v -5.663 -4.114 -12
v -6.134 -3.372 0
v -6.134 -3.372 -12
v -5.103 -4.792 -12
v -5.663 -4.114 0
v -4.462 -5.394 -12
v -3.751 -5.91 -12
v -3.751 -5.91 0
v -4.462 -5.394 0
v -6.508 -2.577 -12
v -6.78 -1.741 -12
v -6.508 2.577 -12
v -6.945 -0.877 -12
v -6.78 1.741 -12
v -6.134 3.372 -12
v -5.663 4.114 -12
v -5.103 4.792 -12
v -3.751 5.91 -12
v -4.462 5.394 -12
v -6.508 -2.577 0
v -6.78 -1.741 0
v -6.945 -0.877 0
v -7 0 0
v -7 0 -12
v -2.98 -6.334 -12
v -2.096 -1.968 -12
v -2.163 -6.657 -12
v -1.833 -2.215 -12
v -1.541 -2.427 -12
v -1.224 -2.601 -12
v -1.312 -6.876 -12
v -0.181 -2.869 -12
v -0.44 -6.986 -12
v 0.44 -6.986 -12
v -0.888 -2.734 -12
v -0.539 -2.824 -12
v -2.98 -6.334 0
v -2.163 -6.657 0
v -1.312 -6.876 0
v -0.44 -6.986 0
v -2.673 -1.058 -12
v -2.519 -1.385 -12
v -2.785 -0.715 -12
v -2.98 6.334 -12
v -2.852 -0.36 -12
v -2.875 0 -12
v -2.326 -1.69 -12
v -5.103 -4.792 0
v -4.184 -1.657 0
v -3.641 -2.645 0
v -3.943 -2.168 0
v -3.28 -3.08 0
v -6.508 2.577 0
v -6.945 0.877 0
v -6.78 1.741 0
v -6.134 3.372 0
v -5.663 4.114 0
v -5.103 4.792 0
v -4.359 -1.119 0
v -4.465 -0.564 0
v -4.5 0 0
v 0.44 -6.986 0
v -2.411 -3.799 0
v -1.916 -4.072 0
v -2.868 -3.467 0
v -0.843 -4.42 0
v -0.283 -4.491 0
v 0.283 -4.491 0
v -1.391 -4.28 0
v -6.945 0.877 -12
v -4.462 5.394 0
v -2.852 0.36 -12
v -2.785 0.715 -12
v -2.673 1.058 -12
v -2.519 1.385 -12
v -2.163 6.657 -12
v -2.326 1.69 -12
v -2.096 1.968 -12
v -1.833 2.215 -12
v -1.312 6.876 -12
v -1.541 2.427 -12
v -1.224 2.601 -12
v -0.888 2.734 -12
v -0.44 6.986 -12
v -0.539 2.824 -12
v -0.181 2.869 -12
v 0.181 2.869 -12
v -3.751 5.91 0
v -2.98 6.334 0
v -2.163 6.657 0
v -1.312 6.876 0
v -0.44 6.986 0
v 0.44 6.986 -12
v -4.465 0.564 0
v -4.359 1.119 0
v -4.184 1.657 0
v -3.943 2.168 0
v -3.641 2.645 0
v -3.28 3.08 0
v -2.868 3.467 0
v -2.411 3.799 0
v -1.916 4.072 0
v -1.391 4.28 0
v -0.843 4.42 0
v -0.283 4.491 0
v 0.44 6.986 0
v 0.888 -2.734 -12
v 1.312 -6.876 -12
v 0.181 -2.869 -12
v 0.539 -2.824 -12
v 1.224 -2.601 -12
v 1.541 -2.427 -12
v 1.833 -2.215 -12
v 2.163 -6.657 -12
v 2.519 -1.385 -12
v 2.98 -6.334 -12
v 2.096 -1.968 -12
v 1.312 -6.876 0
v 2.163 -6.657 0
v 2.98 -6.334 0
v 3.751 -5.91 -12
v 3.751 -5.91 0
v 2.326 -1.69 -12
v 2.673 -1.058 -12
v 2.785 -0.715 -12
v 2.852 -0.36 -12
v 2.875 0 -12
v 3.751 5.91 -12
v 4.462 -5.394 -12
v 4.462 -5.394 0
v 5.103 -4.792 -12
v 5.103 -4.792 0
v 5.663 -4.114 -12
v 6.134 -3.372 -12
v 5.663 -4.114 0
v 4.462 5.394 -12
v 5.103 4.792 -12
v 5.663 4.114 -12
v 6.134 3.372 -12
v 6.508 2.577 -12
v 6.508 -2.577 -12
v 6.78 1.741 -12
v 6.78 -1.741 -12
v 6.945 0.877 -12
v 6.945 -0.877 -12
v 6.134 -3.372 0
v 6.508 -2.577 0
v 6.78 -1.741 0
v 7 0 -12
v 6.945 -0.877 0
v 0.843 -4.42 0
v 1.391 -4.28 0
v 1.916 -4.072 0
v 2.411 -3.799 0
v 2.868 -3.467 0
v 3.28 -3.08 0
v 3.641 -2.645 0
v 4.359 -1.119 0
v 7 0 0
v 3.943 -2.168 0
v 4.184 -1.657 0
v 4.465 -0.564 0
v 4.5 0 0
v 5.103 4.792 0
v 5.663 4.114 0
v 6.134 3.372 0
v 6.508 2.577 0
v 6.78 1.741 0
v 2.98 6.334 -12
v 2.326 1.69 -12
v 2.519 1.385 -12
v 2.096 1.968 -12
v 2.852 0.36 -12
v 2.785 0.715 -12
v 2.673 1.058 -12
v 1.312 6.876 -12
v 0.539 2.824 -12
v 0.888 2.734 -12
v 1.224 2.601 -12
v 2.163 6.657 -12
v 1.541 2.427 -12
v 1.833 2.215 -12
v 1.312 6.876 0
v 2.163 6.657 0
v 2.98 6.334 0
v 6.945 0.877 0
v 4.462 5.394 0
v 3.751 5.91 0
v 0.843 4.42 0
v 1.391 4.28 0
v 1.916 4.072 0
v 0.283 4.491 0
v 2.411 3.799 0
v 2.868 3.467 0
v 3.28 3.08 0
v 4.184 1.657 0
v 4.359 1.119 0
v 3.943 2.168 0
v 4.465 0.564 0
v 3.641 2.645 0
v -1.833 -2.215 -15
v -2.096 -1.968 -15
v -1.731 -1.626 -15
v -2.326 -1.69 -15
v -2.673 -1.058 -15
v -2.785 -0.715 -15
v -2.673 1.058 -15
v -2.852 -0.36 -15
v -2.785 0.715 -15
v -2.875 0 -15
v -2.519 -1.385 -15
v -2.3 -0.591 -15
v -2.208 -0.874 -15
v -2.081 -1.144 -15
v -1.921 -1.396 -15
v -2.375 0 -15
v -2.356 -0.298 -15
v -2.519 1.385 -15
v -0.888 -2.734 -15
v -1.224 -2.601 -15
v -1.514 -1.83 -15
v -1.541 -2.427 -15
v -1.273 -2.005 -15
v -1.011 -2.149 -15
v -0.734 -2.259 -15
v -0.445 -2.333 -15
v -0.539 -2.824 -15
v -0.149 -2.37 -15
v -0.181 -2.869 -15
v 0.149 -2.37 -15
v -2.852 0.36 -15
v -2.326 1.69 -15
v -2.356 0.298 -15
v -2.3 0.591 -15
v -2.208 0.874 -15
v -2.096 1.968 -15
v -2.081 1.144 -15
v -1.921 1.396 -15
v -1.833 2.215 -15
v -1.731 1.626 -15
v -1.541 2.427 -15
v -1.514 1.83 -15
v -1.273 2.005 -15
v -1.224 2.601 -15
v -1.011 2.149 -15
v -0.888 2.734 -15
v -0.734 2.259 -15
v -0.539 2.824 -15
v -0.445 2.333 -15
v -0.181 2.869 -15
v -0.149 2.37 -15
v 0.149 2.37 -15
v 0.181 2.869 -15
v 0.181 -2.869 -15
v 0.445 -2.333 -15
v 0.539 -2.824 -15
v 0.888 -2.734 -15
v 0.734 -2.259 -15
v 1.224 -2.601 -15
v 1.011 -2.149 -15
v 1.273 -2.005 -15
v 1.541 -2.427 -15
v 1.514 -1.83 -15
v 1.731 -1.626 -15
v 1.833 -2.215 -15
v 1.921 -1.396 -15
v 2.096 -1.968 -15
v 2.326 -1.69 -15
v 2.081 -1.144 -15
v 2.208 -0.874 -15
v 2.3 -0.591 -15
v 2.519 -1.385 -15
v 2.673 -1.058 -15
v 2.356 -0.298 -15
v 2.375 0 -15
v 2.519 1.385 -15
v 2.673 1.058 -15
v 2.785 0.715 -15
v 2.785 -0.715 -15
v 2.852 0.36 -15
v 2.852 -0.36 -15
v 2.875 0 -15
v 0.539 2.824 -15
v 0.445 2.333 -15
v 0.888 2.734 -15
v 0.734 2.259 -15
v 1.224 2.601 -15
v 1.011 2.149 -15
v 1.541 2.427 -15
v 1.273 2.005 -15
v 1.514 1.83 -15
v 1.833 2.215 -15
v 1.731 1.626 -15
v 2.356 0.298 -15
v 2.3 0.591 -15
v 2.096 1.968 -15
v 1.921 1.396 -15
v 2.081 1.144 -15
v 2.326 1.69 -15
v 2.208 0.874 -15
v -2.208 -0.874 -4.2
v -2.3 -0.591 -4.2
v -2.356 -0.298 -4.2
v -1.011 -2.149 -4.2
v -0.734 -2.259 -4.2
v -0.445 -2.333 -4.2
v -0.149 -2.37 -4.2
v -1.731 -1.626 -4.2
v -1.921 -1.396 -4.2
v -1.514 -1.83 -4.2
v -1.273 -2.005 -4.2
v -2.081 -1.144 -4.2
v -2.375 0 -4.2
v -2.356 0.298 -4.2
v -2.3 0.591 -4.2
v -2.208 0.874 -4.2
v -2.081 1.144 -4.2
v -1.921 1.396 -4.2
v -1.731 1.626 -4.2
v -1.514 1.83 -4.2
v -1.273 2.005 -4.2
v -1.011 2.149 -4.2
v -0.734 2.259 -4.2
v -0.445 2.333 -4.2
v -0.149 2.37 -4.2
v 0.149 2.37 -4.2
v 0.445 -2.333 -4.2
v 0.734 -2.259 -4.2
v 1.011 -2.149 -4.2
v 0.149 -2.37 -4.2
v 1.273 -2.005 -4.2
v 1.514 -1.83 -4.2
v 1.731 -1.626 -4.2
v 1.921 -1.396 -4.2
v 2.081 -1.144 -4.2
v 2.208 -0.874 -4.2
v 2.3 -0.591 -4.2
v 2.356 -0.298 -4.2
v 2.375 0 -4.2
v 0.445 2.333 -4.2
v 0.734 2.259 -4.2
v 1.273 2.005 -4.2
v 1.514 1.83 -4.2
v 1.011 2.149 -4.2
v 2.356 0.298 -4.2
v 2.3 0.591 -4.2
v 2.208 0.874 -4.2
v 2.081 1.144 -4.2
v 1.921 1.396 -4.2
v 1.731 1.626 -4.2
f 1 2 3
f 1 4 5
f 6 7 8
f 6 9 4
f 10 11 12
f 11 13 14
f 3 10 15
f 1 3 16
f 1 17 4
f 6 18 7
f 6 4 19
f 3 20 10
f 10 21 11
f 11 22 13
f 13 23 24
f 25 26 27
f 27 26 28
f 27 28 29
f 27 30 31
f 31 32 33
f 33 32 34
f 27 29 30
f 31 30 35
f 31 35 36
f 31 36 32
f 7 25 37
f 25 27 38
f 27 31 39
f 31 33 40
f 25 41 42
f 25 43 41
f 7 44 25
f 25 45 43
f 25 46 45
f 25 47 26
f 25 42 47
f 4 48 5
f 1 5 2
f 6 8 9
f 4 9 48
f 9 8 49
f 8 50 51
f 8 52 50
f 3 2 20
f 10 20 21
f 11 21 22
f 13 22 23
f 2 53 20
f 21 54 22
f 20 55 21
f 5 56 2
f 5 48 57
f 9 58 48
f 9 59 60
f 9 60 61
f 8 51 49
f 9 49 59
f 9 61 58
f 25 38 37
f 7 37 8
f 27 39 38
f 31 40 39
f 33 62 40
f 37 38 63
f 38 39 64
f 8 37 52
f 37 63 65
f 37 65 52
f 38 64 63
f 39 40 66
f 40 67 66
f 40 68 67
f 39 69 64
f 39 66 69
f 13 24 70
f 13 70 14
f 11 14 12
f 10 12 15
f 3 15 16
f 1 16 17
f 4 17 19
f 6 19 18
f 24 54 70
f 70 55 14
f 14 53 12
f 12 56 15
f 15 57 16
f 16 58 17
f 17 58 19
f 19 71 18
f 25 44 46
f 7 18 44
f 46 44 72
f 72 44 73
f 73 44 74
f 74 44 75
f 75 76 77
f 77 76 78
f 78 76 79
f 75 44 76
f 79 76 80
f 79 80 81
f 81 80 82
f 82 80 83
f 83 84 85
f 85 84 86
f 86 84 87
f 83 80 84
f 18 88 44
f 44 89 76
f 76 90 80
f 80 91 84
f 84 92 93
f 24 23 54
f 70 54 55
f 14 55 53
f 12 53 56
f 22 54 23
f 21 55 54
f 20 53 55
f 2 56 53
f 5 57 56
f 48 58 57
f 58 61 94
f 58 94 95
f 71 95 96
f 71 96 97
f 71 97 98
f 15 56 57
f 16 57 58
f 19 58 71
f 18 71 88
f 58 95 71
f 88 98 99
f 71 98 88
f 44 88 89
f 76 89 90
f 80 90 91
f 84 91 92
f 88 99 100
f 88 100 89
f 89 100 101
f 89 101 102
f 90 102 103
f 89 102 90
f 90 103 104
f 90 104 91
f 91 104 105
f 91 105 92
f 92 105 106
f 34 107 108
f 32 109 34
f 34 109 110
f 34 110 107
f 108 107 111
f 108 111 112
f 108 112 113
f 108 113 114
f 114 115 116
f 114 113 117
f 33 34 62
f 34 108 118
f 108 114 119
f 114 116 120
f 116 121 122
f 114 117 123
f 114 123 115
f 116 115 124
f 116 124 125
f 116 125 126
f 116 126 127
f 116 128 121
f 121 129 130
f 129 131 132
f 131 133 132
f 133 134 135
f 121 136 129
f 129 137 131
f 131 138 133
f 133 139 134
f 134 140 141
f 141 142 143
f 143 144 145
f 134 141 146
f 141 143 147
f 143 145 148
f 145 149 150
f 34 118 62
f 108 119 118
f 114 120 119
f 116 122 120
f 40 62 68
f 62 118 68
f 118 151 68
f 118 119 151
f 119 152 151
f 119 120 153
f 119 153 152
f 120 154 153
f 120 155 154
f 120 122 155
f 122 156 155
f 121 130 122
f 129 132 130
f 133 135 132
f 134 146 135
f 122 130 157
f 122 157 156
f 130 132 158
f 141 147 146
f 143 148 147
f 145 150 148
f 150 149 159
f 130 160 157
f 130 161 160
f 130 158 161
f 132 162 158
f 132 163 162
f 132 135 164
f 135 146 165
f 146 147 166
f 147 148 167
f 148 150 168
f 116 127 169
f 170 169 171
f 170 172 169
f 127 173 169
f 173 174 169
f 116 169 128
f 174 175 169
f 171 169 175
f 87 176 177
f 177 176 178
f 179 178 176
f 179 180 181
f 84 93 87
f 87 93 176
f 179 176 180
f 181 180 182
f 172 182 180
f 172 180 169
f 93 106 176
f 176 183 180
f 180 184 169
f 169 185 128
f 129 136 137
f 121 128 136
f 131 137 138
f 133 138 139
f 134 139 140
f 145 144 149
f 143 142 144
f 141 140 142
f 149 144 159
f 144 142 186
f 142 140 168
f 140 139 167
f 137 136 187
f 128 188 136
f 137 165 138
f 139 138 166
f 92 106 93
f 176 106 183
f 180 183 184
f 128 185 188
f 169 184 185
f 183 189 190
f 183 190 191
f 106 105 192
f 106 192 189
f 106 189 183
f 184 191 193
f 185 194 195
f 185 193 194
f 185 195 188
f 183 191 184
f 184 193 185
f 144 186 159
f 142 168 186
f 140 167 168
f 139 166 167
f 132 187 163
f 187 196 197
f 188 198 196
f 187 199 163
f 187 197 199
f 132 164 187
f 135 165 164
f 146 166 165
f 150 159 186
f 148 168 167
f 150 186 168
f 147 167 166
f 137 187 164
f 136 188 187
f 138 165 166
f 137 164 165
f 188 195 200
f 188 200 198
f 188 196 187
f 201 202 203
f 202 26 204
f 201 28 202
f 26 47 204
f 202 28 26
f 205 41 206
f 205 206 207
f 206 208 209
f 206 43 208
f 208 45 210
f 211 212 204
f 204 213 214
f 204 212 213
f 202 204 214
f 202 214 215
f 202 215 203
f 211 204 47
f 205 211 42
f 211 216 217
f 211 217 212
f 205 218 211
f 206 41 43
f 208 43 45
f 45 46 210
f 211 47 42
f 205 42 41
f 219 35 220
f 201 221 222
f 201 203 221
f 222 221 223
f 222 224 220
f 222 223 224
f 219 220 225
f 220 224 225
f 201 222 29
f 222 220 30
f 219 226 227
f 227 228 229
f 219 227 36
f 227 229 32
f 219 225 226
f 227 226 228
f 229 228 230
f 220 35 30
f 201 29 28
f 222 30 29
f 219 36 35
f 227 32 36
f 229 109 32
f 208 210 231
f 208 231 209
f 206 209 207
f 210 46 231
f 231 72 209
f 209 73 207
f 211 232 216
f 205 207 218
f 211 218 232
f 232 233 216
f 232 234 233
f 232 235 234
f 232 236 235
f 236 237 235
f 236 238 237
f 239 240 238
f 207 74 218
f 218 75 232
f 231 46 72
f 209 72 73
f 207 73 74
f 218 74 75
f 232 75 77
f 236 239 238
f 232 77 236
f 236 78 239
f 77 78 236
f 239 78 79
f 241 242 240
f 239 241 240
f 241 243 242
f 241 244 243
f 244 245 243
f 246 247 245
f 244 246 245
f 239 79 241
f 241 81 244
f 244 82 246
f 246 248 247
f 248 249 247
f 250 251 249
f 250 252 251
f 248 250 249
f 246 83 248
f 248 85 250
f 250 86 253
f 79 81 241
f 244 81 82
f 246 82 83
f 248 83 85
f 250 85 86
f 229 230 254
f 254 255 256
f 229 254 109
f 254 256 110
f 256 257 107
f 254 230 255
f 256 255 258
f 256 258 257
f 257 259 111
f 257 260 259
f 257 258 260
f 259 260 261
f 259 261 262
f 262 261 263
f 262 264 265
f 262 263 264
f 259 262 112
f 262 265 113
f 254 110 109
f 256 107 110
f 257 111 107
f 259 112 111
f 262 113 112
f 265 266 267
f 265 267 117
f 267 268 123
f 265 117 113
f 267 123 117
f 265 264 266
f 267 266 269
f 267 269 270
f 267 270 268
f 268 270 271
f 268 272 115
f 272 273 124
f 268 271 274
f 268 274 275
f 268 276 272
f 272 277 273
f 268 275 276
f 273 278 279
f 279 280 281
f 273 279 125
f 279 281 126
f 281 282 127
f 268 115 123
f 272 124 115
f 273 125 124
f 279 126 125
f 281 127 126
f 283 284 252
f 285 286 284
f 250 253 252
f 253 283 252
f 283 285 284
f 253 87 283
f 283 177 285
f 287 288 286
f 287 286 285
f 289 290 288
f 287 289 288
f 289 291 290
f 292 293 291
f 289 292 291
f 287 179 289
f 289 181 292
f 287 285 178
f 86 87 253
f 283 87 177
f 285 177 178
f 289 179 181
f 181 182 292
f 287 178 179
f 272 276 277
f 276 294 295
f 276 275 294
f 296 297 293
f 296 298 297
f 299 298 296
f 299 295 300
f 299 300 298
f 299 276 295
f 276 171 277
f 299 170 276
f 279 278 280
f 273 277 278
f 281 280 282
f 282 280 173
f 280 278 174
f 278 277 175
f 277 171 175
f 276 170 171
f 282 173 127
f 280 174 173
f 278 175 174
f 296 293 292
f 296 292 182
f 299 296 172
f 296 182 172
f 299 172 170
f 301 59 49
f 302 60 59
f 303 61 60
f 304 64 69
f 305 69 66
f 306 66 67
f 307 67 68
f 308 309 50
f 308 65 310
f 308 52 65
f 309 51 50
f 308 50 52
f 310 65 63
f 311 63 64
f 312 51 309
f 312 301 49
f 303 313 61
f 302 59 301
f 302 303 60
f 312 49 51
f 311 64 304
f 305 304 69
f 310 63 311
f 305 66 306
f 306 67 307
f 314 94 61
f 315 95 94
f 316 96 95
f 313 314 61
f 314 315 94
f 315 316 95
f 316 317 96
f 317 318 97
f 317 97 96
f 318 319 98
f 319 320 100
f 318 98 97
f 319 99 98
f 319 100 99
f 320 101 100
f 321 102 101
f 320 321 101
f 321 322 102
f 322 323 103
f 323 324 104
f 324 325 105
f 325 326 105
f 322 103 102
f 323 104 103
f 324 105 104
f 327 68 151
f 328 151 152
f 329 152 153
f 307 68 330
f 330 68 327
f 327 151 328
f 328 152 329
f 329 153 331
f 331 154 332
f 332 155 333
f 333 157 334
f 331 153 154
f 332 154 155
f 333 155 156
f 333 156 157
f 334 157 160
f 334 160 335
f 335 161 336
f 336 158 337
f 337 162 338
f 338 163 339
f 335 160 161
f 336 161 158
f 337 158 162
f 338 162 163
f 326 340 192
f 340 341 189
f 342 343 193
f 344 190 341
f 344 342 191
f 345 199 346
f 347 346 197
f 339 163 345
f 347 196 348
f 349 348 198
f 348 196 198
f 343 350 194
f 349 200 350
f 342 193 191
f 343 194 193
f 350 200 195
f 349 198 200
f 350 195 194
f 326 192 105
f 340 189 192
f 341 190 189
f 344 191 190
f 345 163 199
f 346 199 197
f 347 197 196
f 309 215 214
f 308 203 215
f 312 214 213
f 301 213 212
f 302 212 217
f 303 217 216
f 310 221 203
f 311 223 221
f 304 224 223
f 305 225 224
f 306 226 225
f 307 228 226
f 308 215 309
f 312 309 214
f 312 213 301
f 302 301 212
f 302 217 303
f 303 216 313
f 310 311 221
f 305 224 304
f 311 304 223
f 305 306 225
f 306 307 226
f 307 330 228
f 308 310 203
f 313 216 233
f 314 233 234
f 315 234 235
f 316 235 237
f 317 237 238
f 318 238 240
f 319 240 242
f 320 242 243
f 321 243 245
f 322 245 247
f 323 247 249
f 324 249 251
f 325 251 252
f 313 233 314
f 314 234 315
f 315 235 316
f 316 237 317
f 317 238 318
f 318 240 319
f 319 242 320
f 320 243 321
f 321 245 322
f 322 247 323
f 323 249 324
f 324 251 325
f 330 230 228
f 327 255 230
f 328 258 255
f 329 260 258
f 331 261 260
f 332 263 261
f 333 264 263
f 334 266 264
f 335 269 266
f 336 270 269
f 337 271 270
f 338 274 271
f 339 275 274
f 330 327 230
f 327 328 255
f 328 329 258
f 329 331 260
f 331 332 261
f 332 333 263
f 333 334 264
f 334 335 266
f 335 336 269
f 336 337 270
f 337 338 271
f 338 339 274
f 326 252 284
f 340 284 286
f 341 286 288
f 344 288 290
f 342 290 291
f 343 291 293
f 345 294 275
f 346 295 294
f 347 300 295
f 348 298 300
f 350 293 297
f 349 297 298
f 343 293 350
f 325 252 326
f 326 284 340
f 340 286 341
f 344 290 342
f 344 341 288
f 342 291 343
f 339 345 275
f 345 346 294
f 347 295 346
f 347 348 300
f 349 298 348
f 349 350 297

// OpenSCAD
$fn = 50;


difference() {
	union() {
		translate(v = [0, 0, -12.0000000000]) {
			cylinder(h = 12, r = 7.0000000000);
		}
		#translate(v = [0, 0, -15.0000000000]) {
			cylinder(h = 15, r = 2.8750000000);
		}
	}
	union() {
		translate(v = [0, 0, 0]) {
			rotate(a = [0, 0, 0]) {
				difference() {
					union() {
						translate(v = [0, 0, -15.0000000000]) {
							cylinder(h = 15, r = 2.2500000000);
						}
						translate(v = [0, 0, -4.2000000000]) {
							cylinder(h = 4.2000000000, r1 = 2.3750000000, r2 = 4.5000000000);
						}
						translate(v = [0, 0, -15.0000000000]) {
							cylinder(h = 15, r = 2.3750000000);
						}
						translate(v = [0, 0, -15.0000000000]) {
							cylinder(h = 15, r = 2.2500000000);
						}
					}
					union();
				}
			}
		}
	}
}
